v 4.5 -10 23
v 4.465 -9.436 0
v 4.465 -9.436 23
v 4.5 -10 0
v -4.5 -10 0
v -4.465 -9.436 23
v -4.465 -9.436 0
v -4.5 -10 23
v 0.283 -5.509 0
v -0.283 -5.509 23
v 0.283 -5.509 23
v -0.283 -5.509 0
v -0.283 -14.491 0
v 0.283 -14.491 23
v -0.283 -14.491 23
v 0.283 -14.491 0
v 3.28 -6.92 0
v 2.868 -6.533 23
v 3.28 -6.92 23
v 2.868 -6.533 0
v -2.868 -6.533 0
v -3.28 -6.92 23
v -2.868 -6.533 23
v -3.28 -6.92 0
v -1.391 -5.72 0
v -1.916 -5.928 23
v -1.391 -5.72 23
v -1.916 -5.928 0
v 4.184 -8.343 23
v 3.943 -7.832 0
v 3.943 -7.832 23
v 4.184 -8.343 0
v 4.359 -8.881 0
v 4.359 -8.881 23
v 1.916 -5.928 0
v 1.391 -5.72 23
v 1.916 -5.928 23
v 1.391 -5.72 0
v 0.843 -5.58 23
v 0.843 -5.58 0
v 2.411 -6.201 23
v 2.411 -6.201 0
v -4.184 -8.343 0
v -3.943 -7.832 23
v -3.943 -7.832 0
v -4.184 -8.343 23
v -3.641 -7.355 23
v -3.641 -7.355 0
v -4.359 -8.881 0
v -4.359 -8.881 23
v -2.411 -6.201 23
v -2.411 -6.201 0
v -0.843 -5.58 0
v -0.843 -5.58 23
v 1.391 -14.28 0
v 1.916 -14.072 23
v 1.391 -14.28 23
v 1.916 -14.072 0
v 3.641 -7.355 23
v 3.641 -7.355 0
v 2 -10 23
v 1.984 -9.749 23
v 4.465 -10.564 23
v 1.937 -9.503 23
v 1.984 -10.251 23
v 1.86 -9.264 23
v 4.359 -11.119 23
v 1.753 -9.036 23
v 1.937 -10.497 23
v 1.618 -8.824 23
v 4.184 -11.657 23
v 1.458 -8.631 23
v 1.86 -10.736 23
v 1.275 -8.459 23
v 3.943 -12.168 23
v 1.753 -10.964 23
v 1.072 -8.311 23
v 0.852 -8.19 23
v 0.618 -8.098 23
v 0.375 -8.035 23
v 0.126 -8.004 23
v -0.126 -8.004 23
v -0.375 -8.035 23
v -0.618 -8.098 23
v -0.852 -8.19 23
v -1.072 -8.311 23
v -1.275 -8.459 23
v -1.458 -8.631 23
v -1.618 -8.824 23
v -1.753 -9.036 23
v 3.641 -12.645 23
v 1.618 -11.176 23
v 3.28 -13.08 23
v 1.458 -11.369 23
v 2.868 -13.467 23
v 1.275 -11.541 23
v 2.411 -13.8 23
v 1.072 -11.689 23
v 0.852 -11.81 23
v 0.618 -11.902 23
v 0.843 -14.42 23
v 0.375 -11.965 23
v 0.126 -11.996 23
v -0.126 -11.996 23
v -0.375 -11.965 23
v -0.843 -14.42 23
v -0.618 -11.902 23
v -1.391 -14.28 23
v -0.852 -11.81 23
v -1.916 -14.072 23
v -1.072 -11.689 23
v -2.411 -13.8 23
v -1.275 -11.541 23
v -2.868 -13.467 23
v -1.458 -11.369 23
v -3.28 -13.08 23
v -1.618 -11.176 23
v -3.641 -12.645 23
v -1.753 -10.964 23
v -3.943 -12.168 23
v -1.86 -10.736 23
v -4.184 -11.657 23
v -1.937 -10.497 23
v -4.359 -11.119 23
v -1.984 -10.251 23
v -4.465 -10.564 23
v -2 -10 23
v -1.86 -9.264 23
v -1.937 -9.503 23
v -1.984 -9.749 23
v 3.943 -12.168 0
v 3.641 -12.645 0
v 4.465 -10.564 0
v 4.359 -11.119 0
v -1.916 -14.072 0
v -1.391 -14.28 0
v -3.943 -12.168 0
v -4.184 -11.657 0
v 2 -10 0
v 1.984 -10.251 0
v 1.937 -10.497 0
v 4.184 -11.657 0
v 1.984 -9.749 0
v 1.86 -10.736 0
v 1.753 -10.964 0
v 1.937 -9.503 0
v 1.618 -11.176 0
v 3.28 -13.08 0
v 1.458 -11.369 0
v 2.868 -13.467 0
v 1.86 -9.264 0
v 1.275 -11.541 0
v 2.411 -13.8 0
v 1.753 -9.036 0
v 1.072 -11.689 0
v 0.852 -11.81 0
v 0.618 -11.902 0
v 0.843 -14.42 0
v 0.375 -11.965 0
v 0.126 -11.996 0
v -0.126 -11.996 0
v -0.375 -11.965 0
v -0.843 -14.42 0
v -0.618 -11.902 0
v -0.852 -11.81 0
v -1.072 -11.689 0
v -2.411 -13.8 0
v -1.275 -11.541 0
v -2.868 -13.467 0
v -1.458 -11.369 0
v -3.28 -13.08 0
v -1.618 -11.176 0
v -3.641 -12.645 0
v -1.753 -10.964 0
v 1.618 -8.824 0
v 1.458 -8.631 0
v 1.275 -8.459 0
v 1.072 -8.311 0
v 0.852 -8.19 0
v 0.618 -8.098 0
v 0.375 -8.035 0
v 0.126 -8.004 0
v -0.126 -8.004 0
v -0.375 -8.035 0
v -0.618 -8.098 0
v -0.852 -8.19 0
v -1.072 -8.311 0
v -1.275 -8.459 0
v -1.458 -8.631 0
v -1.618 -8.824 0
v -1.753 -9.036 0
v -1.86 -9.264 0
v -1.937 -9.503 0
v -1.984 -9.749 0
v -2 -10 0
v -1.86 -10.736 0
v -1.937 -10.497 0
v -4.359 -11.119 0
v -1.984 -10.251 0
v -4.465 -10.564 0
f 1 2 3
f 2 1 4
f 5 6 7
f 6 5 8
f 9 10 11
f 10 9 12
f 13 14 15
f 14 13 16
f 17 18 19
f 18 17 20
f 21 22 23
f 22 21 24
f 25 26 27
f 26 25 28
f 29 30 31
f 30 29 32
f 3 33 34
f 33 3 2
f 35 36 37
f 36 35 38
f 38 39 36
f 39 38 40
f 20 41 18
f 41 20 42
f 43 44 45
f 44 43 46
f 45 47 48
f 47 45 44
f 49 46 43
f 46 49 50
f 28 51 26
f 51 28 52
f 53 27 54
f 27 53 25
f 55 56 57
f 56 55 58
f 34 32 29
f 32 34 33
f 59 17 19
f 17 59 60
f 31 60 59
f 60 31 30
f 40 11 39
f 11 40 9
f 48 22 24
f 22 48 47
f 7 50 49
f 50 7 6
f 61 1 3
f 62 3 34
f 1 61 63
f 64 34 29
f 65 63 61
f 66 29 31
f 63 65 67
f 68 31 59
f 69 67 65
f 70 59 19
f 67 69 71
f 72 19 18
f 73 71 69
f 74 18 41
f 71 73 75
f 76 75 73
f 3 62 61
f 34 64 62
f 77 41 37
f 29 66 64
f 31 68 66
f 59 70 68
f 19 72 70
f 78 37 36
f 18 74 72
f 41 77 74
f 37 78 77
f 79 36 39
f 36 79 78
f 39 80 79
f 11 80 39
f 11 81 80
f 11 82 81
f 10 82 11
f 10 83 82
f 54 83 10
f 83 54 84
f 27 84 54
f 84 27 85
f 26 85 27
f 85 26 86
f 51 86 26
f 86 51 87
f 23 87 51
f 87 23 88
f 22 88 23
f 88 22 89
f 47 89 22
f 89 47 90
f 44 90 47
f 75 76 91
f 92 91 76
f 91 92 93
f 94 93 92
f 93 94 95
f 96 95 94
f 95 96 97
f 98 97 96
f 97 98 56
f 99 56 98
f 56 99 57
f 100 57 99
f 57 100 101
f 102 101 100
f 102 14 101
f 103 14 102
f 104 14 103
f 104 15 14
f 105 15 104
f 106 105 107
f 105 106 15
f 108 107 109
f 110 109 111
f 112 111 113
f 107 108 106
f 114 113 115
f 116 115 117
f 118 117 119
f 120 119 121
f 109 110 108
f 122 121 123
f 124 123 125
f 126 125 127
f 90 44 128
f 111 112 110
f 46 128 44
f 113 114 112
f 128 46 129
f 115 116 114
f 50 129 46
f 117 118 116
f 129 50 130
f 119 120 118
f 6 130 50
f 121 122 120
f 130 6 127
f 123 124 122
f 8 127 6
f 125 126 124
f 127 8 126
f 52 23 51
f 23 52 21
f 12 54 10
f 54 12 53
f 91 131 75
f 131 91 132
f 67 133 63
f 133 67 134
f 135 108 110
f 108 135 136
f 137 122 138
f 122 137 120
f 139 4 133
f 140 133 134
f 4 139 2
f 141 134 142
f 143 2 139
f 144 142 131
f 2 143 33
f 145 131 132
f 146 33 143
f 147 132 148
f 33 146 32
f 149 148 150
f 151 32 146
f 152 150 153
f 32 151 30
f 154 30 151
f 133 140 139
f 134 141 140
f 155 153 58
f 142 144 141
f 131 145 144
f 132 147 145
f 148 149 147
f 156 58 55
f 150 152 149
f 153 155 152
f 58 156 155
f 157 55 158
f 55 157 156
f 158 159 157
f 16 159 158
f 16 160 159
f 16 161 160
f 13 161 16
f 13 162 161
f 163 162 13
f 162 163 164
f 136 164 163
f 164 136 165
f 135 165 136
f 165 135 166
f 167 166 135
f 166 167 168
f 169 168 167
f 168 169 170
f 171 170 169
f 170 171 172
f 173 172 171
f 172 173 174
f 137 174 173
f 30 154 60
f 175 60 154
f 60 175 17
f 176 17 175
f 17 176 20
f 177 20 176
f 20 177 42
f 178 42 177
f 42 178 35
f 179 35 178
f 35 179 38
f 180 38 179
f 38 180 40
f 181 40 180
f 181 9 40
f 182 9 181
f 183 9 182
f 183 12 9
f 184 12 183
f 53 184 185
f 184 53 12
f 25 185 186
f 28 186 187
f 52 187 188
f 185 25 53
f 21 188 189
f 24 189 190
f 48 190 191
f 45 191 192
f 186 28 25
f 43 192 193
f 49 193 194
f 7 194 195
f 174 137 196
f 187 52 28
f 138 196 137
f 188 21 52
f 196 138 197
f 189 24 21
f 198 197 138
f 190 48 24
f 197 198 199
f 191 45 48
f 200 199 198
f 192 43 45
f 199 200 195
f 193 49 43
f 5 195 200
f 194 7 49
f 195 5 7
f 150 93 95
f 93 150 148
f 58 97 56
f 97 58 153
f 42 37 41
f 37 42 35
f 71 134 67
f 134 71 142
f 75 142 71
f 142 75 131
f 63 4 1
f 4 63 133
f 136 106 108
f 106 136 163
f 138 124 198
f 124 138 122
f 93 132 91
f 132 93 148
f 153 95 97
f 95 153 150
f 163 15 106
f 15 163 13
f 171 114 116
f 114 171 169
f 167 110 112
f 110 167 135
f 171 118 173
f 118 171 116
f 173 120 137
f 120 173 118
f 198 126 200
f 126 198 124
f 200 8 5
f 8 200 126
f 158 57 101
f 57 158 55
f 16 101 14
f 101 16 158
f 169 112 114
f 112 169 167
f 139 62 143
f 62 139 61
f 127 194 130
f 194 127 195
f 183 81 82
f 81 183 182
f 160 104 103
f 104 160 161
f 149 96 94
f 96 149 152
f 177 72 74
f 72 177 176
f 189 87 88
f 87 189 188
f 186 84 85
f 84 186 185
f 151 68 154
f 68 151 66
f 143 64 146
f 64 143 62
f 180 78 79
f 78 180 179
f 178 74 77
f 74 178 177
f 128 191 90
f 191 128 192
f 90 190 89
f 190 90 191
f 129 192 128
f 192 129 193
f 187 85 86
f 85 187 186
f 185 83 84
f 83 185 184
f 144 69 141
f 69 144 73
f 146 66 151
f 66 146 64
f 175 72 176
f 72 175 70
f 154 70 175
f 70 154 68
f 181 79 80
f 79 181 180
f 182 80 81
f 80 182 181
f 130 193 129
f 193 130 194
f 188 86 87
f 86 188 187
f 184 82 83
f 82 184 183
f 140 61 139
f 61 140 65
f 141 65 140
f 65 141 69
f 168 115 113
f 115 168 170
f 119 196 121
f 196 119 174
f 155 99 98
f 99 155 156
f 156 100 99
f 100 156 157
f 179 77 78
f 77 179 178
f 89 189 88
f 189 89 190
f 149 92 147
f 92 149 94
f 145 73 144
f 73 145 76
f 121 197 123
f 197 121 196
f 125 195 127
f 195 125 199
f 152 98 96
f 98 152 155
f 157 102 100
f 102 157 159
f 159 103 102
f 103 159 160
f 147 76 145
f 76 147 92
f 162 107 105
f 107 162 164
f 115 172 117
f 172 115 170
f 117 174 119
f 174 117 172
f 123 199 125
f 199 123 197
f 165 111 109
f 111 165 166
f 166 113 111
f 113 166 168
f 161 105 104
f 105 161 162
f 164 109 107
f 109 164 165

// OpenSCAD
$fn=50;

module spacer()
{
    difference(){
        cylinder(r=4.5,h=23);
        translate([0,0,-.1]) cylinder(r=2,h=24.2);
    }
}

translate([0,-10,0]) spacer();
//translate([0,-20,0]) spacer();
//translate([0,10,0]) spacer();
//translate([0,20,0]) spacer();
